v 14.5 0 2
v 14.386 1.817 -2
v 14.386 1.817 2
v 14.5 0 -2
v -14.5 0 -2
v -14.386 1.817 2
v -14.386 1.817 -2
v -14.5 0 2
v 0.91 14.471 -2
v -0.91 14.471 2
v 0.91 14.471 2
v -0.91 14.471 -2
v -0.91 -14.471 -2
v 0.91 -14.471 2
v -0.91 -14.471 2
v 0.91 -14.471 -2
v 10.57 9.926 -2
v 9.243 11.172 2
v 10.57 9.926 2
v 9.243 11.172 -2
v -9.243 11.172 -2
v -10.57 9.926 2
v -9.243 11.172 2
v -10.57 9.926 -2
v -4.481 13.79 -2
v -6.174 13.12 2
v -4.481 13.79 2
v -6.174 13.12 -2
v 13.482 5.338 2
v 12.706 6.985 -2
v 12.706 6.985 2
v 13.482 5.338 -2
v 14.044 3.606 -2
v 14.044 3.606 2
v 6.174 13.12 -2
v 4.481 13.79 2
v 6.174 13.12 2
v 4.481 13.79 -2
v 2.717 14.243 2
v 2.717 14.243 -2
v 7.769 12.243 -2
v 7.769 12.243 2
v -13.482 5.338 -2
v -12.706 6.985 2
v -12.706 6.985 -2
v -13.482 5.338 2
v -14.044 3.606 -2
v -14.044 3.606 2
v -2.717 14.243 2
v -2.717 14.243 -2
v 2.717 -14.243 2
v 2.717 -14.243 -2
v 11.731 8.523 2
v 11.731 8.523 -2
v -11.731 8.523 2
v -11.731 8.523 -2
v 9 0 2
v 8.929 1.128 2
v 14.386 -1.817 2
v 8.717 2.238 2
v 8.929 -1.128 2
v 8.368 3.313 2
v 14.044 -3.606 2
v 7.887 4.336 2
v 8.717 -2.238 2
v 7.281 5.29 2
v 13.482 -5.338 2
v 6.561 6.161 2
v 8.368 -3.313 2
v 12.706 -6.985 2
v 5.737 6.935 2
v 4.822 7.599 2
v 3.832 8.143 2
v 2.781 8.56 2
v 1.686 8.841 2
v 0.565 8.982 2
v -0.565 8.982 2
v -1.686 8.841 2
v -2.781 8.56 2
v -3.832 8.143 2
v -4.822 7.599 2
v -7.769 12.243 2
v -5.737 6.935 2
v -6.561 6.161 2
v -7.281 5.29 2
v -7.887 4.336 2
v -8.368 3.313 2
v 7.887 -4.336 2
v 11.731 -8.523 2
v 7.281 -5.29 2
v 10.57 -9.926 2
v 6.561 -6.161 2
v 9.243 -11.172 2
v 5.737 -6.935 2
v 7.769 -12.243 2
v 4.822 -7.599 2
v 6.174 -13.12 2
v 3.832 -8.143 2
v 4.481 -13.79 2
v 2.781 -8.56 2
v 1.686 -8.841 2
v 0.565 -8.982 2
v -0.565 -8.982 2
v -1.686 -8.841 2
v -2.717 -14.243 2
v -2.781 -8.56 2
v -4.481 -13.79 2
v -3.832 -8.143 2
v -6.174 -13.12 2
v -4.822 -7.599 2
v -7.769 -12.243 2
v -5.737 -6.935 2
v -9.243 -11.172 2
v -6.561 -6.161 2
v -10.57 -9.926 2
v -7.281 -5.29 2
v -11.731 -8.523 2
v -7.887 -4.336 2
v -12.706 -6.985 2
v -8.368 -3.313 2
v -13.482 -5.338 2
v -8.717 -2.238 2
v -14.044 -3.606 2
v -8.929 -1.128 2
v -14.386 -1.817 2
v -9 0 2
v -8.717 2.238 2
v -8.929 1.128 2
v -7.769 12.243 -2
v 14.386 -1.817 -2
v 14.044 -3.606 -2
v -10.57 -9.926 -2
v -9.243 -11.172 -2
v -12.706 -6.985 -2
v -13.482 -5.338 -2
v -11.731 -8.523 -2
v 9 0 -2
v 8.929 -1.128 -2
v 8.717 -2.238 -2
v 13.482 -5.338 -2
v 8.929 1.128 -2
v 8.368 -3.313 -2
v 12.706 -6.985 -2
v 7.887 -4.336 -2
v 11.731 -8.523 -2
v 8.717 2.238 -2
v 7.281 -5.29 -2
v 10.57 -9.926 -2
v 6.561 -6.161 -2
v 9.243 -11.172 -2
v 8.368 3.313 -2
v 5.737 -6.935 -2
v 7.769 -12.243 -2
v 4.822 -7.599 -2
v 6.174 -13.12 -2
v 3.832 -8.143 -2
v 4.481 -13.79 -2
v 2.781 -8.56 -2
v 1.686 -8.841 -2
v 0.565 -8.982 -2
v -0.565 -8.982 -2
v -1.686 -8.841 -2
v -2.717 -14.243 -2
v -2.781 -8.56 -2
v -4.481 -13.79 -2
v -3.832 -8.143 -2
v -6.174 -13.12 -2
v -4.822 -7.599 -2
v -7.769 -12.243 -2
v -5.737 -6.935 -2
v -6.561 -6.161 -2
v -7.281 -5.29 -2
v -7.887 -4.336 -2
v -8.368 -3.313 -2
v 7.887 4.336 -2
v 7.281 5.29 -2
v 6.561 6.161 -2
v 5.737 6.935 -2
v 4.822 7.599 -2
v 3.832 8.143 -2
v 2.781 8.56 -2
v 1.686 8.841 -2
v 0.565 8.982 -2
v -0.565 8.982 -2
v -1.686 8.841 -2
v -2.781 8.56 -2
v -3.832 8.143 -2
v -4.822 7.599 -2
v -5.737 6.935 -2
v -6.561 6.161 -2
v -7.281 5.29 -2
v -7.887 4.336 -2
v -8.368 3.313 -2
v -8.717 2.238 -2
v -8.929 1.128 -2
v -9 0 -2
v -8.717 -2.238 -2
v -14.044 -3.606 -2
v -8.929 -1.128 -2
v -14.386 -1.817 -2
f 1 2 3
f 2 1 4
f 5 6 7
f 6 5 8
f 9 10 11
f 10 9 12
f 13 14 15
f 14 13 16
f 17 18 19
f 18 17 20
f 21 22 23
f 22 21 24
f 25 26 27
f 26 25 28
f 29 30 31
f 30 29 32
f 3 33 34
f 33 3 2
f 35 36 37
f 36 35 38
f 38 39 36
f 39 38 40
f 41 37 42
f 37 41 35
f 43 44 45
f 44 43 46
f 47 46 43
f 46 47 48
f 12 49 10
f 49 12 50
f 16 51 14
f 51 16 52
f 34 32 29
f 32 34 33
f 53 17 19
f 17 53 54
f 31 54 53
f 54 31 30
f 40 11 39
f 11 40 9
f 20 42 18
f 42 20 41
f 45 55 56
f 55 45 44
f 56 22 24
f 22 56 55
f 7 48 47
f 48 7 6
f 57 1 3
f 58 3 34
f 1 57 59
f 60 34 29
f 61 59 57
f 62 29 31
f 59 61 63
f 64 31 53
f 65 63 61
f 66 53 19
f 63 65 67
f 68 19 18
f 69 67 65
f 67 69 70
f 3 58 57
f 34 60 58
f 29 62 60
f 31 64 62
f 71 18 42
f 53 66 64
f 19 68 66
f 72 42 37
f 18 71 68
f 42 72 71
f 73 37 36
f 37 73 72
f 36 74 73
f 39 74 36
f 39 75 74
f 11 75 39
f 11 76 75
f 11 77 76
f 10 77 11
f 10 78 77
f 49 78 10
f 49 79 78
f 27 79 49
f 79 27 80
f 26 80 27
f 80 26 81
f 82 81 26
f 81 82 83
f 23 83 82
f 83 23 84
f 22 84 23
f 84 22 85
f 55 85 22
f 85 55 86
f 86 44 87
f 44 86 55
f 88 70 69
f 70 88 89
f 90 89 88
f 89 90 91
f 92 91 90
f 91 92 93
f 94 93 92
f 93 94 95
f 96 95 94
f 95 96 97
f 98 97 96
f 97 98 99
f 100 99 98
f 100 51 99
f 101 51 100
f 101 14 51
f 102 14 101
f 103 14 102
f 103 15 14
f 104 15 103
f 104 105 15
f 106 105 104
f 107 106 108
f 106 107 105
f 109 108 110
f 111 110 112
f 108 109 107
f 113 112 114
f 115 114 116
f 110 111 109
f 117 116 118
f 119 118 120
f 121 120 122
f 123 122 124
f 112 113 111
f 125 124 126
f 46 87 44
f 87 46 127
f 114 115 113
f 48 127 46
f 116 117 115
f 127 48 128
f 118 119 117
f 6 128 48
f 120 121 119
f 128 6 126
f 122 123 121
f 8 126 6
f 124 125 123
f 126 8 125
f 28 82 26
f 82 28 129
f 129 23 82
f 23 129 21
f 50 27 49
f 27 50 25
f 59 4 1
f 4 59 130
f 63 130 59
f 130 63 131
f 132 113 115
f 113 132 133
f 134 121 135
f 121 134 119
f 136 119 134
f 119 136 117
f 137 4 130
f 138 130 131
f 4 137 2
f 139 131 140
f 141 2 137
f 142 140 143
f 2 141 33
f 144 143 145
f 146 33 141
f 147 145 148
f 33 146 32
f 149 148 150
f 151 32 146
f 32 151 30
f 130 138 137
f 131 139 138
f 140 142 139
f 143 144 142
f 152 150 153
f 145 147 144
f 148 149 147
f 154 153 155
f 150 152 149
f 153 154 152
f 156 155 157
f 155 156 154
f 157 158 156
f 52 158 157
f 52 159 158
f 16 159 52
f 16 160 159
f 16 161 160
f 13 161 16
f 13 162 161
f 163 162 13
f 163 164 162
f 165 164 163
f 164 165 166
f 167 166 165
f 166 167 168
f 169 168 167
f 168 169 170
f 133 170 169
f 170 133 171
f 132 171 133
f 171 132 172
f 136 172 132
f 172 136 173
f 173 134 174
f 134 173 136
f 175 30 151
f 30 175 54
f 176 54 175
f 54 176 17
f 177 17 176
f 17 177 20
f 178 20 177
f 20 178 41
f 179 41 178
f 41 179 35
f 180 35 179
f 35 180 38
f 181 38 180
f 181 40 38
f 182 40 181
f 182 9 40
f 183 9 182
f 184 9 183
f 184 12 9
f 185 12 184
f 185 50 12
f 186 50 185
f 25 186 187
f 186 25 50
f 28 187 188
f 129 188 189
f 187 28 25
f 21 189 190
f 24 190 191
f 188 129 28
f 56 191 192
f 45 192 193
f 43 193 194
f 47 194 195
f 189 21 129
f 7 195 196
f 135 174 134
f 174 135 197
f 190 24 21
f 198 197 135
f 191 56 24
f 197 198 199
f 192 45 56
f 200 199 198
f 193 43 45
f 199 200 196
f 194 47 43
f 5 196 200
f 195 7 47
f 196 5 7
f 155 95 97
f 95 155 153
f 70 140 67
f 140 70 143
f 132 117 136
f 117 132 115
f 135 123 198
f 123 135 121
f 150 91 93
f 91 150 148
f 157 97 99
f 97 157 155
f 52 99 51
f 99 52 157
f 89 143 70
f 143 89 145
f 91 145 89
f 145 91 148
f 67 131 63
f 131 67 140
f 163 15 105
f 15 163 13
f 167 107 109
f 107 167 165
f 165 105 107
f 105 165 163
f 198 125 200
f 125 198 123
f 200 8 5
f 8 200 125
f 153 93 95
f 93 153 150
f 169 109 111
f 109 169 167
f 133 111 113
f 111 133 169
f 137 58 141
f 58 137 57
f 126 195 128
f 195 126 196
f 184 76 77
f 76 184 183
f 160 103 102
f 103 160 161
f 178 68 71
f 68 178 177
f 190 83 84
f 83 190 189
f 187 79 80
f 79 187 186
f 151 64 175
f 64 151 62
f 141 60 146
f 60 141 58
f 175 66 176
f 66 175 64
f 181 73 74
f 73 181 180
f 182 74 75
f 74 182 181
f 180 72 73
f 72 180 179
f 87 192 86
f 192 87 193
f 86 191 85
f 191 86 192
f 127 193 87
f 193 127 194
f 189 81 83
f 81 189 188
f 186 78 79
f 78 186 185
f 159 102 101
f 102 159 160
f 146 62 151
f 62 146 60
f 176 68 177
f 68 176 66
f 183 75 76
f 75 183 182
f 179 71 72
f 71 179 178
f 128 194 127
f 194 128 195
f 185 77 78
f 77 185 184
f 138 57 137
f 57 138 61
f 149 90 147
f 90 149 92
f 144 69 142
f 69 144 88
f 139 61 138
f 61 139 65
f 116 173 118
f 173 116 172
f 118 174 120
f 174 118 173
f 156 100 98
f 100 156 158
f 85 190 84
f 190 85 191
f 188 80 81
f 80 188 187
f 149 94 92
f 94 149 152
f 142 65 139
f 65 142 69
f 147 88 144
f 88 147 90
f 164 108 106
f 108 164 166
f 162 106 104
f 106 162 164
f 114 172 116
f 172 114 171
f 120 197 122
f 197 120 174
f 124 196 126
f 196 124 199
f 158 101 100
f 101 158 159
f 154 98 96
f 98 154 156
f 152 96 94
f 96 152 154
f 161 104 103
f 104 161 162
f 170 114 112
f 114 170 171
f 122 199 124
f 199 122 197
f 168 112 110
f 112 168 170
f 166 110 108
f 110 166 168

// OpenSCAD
$fn = 50;


difference() {
	union() {
		translate(v = [0, 0, -2.0000000000]) {
			cylinder(h = 4, r = 14.5000000000);
		}
	}
	union() {
		translate(v = [0, 0, -100.0000000000]) {
			cylinder(h = 200, r = 9);
		}
	}
}
